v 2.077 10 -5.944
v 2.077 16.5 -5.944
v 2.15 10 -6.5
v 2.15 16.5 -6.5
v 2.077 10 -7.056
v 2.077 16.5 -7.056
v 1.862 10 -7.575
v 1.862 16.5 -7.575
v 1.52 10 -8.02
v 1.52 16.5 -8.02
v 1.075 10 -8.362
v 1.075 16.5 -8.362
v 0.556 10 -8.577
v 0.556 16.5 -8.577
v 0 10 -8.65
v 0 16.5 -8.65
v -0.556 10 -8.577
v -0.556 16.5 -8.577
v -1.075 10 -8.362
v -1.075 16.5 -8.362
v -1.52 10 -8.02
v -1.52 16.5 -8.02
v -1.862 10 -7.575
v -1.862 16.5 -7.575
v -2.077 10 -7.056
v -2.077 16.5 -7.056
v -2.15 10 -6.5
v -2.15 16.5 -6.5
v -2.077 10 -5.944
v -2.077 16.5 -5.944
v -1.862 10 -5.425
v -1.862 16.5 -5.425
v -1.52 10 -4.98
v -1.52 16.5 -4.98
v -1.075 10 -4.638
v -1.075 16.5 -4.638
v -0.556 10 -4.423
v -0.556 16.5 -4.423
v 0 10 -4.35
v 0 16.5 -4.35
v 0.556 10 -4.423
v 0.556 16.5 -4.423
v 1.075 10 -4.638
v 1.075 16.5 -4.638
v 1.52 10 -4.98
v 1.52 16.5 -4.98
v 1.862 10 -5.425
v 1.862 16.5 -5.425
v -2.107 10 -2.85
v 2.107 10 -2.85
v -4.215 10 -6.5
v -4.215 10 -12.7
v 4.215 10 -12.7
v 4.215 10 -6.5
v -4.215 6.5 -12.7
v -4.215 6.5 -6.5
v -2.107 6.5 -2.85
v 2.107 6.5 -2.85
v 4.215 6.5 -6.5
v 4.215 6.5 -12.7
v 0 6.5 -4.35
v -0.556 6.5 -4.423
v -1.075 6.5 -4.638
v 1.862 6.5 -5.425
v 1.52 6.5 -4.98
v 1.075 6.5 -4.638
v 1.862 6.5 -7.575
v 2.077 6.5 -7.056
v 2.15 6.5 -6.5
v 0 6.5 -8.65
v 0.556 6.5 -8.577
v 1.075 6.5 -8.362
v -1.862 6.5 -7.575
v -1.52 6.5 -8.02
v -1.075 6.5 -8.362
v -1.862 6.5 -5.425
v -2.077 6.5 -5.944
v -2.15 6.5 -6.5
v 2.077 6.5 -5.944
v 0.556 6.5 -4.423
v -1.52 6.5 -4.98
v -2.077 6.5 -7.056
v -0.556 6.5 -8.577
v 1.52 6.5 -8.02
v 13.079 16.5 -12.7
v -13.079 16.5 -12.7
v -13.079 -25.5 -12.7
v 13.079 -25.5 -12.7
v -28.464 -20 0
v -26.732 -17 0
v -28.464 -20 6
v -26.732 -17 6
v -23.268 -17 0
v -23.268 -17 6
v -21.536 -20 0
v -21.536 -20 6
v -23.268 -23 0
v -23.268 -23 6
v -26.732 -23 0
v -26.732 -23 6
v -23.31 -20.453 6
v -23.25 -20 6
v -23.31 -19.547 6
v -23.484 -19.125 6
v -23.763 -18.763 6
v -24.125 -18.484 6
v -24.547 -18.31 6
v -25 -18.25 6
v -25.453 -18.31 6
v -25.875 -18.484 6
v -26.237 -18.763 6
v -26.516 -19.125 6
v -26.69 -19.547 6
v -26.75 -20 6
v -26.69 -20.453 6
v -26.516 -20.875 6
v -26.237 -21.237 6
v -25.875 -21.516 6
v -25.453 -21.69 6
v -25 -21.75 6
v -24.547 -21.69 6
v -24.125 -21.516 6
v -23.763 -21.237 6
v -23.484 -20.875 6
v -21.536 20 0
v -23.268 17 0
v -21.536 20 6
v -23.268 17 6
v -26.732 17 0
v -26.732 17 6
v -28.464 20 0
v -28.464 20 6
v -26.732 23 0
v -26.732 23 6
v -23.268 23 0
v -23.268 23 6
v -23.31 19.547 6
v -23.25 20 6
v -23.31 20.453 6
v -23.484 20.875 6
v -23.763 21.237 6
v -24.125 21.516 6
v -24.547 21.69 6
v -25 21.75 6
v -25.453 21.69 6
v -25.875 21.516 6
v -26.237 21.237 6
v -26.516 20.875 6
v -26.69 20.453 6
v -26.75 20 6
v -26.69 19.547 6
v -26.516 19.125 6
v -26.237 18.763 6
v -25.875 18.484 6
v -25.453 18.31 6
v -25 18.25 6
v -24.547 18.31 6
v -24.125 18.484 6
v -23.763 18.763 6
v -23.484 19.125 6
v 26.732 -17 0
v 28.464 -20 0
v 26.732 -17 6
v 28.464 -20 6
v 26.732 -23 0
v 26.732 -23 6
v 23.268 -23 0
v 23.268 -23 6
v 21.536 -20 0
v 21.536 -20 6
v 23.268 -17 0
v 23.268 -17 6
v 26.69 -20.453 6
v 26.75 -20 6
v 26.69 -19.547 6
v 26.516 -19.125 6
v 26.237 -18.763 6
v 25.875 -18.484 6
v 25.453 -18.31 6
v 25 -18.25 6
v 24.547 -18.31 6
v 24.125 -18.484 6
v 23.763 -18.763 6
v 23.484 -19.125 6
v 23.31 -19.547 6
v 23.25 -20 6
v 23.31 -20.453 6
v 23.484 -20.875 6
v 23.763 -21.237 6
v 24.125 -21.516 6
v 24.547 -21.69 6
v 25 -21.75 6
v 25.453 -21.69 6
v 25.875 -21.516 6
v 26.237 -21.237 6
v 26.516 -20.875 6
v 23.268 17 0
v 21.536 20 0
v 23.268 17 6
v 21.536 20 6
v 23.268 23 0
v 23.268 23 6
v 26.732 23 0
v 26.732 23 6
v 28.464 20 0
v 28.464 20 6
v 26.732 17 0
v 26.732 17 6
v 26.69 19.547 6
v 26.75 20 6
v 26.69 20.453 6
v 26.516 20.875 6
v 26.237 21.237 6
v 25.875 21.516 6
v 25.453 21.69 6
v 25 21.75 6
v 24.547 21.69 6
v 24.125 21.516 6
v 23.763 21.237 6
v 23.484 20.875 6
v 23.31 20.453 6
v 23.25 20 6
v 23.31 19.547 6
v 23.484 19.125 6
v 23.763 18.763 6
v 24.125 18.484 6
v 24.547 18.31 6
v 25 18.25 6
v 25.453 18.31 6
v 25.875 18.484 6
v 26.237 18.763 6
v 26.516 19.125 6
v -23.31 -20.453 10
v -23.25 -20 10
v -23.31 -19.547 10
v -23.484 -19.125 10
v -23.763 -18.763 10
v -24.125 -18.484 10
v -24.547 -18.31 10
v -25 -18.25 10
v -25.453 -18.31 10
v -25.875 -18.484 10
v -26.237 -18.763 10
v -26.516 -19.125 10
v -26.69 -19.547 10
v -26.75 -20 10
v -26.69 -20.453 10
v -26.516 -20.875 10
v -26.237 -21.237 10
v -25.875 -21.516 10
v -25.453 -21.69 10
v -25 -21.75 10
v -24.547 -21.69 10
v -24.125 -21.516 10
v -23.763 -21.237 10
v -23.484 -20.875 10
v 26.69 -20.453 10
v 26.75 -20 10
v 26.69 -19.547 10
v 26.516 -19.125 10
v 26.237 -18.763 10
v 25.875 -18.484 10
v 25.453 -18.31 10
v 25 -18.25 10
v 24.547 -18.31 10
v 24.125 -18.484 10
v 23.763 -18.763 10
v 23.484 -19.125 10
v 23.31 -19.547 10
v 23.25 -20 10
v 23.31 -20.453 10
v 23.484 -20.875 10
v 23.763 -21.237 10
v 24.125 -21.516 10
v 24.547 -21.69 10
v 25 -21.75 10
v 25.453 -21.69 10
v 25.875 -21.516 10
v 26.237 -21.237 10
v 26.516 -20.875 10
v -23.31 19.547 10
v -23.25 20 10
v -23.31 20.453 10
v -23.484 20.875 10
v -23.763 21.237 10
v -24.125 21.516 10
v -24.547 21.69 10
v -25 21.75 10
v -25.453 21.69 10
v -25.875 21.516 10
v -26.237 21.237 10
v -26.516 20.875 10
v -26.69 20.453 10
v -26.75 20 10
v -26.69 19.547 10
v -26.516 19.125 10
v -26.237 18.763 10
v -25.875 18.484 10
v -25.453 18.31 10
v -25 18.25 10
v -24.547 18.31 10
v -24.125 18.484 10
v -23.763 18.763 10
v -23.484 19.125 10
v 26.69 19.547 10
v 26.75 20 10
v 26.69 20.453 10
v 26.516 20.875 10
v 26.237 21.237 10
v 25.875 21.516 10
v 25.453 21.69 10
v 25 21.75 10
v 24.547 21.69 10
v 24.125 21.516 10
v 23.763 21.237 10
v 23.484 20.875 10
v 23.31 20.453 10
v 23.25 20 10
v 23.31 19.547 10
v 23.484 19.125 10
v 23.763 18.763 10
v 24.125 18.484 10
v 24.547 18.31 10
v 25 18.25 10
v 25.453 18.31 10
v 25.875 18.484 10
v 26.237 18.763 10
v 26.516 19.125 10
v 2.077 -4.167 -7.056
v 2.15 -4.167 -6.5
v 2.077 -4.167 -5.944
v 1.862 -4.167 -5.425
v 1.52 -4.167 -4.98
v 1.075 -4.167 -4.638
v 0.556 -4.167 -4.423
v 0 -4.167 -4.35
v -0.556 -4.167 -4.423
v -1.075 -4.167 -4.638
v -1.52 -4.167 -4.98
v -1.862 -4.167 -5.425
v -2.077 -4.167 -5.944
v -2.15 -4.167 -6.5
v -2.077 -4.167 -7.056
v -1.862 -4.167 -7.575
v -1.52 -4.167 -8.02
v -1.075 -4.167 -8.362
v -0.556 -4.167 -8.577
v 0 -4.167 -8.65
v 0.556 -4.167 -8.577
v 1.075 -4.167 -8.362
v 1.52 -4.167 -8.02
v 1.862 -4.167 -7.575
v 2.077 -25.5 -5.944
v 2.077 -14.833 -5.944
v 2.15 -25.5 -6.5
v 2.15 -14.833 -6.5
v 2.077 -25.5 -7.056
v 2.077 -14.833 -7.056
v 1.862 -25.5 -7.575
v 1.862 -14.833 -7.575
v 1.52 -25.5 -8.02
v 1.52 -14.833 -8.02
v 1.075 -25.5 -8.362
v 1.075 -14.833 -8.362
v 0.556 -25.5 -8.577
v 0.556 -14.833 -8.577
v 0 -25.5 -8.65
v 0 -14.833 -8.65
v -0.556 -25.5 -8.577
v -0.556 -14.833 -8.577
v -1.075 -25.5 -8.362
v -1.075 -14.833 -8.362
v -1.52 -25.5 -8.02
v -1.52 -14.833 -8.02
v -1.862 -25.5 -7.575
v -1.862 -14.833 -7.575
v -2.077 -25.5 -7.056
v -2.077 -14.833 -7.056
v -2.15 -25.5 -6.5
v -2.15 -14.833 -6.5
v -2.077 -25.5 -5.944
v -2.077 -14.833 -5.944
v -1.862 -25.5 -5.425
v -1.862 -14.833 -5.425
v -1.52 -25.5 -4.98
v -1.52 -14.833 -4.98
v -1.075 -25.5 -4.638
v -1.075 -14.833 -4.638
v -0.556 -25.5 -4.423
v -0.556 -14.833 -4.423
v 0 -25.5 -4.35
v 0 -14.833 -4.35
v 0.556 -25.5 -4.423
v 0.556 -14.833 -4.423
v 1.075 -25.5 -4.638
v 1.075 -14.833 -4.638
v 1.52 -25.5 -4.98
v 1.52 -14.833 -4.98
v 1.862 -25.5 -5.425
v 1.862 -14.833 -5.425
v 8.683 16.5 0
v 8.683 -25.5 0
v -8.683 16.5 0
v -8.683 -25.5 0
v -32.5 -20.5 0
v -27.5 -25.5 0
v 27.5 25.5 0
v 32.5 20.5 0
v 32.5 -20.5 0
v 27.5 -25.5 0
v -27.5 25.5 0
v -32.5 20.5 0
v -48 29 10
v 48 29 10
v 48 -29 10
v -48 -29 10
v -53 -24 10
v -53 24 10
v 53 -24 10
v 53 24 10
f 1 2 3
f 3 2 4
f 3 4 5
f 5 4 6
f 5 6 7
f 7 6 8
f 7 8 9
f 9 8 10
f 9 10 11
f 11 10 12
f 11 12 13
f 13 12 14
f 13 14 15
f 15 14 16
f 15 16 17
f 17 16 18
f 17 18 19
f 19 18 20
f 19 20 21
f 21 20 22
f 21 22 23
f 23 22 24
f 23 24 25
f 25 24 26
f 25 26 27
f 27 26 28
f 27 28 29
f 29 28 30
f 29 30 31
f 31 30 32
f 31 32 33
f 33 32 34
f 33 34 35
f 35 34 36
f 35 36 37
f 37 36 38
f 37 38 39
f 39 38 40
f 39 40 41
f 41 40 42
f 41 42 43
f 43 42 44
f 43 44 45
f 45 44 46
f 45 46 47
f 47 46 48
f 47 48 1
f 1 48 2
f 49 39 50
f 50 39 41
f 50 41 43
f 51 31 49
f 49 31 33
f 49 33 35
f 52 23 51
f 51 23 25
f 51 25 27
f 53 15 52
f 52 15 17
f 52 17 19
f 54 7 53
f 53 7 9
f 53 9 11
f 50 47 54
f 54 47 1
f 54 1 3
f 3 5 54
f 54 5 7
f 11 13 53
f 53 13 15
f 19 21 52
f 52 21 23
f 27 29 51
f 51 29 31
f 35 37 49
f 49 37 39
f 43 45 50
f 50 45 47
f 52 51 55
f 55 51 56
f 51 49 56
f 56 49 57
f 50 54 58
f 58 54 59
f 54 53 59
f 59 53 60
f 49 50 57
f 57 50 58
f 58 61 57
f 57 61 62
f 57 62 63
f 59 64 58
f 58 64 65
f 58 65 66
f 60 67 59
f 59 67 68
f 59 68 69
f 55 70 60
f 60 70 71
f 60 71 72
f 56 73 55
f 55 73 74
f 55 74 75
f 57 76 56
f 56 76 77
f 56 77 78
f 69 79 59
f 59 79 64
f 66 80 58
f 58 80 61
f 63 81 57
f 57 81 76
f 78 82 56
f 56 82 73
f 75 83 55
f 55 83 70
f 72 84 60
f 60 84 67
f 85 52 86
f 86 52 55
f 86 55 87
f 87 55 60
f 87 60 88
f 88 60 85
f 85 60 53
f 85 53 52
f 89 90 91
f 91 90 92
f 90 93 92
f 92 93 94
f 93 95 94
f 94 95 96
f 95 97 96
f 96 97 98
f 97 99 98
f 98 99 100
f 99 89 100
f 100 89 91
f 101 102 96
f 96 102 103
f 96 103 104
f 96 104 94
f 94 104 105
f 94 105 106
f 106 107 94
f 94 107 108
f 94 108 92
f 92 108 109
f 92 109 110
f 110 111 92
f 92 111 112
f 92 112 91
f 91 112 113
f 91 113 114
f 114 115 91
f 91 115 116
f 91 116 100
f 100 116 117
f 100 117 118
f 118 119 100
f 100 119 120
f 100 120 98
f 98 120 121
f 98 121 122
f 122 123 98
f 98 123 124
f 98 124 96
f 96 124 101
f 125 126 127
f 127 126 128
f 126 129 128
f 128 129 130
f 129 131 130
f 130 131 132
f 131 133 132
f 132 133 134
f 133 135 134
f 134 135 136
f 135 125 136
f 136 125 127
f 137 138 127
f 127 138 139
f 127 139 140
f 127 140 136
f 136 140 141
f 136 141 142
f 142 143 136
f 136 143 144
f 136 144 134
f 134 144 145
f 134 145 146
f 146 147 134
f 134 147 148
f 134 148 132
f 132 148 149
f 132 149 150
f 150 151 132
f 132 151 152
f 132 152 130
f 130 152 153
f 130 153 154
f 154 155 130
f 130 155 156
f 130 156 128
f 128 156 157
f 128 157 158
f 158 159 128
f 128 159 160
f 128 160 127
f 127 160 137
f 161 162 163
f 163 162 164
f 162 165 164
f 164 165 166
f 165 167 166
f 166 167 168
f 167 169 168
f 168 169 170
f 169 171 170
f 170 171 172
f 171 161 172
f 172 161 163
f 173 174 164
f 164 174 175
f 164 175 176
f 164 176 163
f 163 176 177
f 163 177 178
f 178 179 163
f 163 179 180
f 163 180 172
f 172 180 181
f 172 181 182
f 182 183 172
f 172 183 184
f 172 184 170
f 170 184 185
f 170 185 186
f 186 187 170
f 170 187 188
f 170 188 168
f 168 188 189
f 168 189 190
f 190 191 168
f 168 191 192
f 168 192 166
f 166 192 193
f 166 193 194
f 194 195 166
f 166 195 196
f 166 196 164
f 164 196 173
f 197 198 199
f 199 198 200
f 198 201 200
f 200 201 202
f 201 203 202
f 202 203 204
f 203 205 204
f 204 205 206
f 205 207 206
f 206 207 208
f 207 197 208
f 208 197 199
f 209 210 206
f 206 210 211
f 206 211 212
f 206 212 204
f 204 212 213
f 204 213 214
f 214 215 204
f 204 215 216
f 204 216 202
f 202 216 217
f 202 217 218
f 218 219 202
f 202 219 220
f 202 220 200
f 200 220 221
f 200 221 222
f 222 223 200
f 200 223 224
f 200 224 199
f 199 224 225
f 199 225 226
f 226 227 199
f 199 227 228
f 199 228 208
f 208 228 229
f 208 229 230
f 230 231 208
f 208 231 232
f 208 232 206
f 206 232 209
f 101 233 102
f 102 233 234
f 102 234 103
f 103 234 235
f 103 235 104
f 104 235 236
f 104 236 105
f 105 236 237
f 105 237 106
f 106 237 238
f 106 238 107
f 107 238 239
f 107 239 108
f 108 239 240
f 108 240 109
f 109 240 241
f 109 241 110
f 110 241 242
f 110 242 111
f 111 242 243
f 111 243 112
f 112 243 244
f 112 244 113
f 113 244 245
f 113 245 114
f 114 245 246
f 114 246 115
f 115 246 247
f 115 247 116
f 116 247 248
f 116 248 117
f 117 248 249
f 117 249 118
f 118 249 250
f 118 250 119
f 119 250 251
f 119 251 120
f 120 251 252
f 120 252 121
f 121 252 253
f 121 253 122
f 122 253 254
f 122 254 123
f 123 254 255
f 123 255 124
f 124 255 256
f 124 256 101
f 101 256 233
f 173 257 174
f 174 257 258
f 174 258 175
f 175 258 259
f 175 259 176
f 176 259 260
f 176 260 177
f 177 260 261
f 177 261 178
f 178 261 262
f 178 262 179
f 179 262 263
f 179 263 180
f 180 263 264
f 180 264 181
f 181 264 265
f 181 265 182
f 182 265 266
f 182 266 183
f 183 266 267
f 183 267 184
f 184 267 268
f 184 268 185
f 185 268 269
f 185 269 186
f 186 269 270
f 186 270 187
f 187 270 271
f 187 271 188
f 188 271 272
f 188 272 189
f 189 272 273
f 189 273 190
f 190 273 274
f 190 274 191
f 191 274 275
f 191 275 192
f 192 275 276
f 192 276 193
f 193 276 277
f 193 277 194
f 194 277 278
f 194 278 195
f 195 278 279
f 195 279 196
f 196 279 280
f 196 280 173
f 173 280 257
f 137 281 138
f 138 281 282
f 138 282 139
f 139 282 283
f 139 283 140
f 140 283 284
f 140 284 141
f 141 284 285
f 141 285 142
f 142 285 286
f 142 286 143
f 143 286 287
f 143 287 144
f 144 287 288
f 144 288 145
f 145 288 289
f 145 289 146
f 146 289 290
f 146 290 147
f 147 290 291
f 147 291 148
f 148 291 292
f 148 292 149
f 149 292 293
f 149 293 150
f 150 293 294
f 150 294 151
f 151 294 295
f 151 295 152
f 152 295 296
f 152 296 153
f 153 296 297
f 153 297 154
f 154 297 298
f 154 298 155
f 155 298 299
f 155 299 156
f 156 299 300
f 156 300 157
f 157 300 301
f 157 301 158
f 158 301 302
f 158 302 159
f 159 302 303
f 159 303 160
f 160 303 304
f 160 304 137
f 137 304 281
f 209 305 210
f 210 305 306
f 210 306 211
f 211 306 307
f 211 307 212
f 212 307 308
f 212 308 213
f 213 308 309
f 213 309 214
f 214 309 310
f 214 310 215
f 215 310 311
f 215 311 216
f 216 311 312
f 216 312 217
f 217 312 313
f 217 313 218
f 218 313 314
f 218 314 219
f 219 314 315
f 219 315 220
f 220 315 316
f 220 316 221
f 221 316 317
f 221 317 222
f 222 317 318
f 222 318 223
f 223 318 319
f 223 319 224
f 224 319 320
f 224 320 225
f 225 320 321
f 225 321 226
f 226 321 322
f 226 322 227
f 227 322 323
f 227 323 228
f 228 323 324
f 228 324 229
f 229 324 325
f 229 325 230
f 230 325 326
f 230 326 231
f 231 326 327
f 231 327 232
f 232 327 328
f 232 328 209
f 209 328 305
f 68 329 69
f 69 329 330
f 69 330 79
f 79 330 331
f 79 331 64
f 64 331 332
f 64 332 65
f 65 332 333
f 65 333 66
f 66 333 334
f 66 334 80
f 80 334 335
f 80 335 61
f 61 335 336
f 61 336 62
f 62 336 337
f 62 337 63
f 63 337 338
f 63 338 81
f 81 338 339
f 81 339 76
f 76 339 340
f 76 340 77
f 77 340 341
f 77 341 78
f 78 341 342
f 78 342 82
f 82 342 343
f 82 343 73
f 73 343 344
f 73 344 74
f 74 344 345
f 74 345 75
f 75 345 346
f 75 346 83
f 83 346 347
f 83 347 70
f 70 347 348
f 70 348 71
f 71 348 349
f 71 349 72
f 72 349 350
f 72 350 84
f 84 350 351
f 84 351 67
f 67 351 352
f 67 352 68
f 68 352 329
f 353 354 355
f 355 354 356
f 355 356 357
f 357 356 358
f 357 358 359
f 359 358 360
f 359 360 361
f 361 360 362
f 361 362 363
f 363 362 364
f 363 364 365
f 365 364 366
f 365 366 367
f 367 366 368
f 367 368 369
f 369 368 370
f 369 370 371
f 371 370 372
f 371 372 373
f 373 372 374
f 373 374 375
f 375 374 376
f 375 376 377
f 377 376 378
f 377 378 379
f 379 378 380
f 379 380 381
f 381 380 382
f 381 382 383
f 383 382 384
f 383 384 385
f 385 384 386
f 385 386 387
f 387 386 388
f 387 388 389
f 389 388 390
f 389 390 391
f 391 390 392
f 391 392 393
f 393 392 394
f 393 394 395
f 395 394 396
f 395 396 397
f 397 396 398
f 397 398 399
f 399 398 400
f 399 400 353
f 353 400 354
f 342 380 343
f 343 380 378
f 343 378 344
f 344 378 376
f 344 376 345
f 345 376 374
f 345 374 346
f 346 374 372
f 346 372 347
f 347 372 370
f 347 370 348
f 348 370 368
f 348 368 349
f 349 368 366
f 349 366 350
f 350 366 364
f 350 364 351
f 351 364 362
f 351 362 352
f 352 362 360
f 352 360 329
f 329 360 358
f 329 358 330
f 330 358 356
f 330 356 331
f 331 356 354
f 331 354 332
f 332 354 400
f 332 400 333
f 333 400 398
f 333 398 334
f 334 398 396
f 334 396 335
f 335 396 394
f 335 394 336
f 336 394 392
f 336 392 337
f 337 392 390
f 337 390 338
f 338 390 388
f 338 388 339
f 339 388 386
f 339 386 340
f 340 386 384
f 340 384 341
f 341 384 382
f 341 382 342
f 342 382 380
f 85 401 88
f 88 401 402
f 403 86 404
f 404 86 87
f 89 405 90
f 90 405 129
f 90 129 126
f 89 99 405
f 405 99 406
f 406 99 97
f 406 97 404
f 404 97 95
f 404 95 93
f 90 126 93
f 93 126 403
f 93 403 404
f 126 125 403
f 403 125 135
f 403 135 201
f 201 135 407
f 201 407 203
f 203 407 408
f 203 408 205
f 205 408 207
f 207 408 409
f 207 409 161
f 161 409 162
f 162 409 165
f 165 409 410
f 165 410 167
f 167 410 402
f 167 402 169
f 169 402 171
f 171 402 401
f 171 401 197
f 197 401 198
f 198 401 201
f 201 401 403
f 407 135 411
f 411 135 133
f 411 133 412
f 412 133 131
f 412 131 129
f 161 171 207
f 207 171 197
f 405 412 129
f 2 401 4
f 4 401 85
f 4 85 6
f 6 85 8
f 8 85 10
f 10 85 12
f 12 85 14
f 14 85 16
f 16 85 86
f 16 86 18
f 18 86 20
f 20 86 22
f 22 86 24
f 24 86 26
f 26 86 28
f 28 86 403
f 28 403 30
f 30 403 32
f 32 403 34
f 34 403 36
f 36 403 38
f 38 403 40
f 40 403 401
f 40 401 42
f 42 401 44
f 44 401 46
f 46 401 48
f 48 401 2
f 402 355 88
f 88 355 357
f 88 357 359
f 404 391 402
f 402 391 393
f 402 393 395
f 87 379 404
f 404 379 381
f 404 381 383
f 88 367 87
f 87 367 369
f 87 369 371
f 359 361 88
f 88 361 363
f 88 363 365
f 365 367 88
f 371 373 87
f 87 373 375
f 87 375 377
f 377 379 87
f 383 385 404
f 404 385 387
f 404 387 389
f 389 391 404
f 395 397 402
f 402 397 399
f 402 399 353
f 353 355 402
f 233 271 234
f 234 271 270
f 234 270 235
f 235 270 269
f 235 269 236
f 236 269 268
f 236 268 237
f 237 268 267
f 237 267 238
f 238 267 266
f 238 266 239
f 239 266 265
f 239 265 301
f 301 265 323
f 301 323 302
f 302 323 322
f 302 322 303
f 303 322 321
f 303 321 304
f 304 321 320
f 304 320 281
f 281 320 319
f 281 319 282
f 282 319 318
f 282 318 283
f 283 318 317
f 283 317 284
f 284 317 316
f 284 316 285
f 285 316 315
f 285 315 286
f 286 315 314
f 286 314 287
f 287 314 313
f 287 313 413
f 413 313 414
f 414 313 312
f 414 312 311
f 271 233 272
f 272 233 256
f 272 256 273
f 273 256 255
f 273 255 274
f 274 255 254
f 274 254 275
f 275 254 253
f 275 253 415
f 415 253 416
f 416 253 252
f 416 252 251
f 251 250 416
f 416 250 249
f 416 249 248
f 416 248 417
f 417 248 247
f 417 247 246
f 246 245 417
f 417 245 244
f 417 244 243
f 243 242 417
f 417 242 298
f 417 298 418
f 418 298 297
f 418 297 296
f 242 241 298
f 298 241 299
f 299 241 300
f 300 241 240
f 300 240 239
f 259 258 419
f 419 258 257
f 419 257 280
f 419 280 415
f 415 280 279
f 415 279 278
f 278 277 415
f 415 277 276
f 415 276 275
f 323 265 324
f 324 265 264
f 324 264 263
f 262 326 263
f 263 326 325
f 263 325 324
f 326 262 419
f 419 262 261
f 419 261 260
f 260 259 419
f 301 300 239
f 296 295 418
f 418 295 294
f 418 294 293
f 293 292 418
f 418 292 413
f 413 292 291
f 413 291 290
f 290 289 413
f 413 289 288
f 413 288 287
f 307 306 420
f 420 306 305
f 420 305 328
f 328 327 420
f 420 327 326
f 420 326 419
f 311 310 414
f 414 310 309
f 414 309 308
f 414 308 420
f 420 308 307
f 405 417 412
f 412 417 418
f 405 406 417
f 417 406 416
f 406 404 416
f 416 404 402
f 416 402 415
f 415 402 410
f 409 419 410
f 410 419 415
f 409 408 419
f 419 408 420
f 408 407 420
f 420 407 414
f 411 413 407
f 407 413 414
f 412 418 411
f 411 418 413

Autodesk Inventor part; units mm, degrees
ref_plane "YZ Plane" through (0, 0, 0) normal (1, 0, 0) x (0, 1, 0)
ref_plane "XZ Plane" through (0, 0, 0) normal (0, 1, 0) x (-1, 0, 0)
ref_plane "Arbeitsebene1" through (0, 0, 10) normal (0, 0, 1) x (1, 0, 0)
sketch "Skizze1" plane through (0, 0, 0) normal (0, 0, 1) x (1, 0, 0)
  line L0 (-27.5, 25.5) -> (27.5, 25.5)
  line L1 (32.5, 20.5) -> (32.5, -20.5)
  line L2 (27.5, -25.5) -> (-27.5, -25.5)
  line L3 (-32.5, -20.5) -> (-32.5, 20.5)
  line L4 (-32.5, 0) -> (32.5, 0) construction
  line L5 (0, 25.5) -> (0, -25.5) construction
  line L6 (-32.5, 20.5) -> (-27.5, 25.5)
  line L7 (32.5, 20.5) -> (27.5, 25.5)
  line L8 (-32.5, -20.5) -> (-27.5, -25.5)
  line L9 (32.5, -20.5) -> (27.5, -25.5)
  point P0 (0, 0)
  point P1 (0, 0)
  dimension "d0" = 65
  dimension "d3" = 5
  dimension "d4" = 51
  dimension "d28" = 5
sketch "Skizze2" plane through (0, 0, 10) normal (0, 0, 1) x (1, 0, 0)
  line L0 (-48, 29) -> (48, 29)
  line L1 (53, 24) -> (53, -24)
  line L2 (48, -29) -> (-48, -29)
  line L3 (-53, -24) -> (-53, 24)
  line L4 (-53, 0) -> (53, 0) construction
  line L5 (0, 29) -> (0, -29) construction
  line L6 (-53, 24) -> (-48, 29)
  line L7 (53, 24) -> (48, 29)
  line L8 (-53, -24) -> (-48, -29)
  line L9 (53, -24) -> (48, -29)
  point P0 (0, 0)
  point P1 (0, 0)
  dimension "d6" = 58
  dimension "d8" = 45
  dimension "d9" = 5
  dimension "d10" = 106
loft "Erhebung1" add profiles "Skizze1", "Skizze2"
sketch "Skizze3" plane through (27.5, 25.5, 0) normal (0, 0, -1) x (-1, 0, 0)
  line L0 (14, -51) -> (41, -51)
  line L1 (41, -51) -> (41, -9)
  line L2 (41, -9) -> (14, -9)
  line L3 (14, -9) -> (14, -51)
  line L4 (55, -51) -> (0, -51) projected
  point P0 (27.5, -25.5)
  point P1 (27.5, -51)
  dimension "d15" = 27
  dimension "d16" = 42
extrude "Extrusion1" add sketch "Skizze3" along normal blind 13
sketch "Skizze4" plane through (-13.5, -25.5, 0) normal (0, -1, 0) x (1, 0, 0)
  line L0 (13.5, 0) -> (13.5, -13) construction
  line L1 (27, -13) -> (0, -13) construction
  circle A0 centre (13.5, -6.5) radius 2.15
  line L2 (27, 0) -> (27, -13) projected
  line L3 (27, -13) -> (22.5, 0)
  line L4 (0, 0) -> (27, 0) projected
  line L5 (0, -13) -> (4.5, 0)
  line L6 (0, 0) -> (27, 0) projected
  line L7 (0, 0) -> (0, -13) projected
  line L8 (27, -13) -> (0, -13) projected
  line L9 (27, 0) -> (27, -13) projected
  line L10 (26.6825, -13) -> (22.1825, 0)
  line L11 (4.8175, 0) -> (0.3175, -13)
  line L12 (0.1038, -12.7) -> (26.8962, -12.7)
  point P0 (26.5787, -12.7)
  point P1 (0.4213, -12.7)
  point P2 (22.1825, 0)
  dimension "d19" = 18
  dimension "d20" = 4.3
  dimension "d29" = 27
  dimension "d30" = 13
  dimension "d31" = 0.3
  dimension "d32" = 0.3
  dimension "d33" = 0.3
extrude "Extrusion2" cut sketch "Skizze4" against normal through all contours A0 | L2 L3 L4 | L8 L10 L12 L3 | L3 L12 L10 L4 | L8 L11 L12 L10 | L8 L5 L12 L11 | L11 L12 L5 L4 | L7 L4 L5
sketch "Skizze5" plane through (27.5, 25.5, 0) normal (0, 0, -1) x (-1, 0, 0)
  line L0 (2.5, -5.5) -> (52.5, -5.5)
  line L1 (52.5, -5.5) -> (52.5, -45.5)
  line L2 (52.5, -45.5) -> (2.5, -45.5)
  line L3 (2.5, -45.5) -> (2.5, -5.5)
  line L4 (2.5, -5.5) -> (52.5, -45.5) construction
  line L5 (52.5, -5.5) -> (2.5, -45.5) construction
  circle A0 centre (2.5, -5.5) radius 1.75
  circle A1 centre (52.5, -5.5) radius 1.75
  circle A2 centre (2.5, -45.5) radius 1.75
  circle A3 centre (52.5, -45.5) radius 1.75
  point P0 (27.5, -25.5)
  point P1 (27.5, -25.5)
  point P2 (27.5, -25.5)
  dimension "d23" = 50
  dimension "d24" = 40
  dimension "d25" = 3.5
extrude "Extrusion3" cut sketch "Skizze5" against normal through all contours L3 A0 L0 | L0 A0 L3 | A1 L1 L0 | L0 L1 A1 | A2 L2 L3 | L3 L2 A2 | A3 L2 L1 | L1 L2 A3
sketch "Skizze6" plane through (27.5, 25.5, 0) normal (0, 0, -1) x (-1, 0, 0)
  circle A0 centre (2.5, -5.5) radius 1.75 projected
  line L0 (-0.9641, -5.5) -> (0.7679, -2.5)
  line L1 (0.7679, -2.5) -> (4.2321, -2.5)
  line L2 (4.2321, -2.5) -> (5.9641, -5.5)
  line L3 (5.9641, -5.5) -> (4.2321, -8.5)
  line L4 (4.2321, -8.5) -> (0.7679, -8.5)
  line L5 (0.7679, -8.5) -> (-0.9641, -5.5)
  line L6 (0, 0) -> (55, 0) projected
  line L7 (27.5, 0) -> (27.5, -51) construction
  line L8 (36.1825, -51) -> (18.8175, -51) construction
  line L9 (-5, -46) -> (-5, -5) construction
  line L10 (-5, -25.5) -> (60, -25.5) construction
  line L11 (60, -5) -> (60, -46) construction
  circle A1 centre (52.5, -5.5) radius 1.75
  line L12 (55.9641, -5.5) -> (54.2321, -2.5)
  line L13 (54.2321, -2.5) -> (50.7679, -2.5)
  line L14 (50.7679, -2.5) -> (49.0359, -5.5)
  line L15 (49.0359, -5.5) -> (50.7679, -8.5)
  line L16 (50.7679, -8.5) -> (54.2321, -8.5)
  line L17 (54.2321, -8.5) -> (55.9641, -5.5)
  line L18 (55, 0) -> (0, 0)
  circle A2 centre (2.5, -45.5) radius 1.75
  line L19 (-0.9641, -45.5) -> (0.7679, -48.5)
  line L20 (0.7679, -48.5) -> (4.2321, -48.5)
  line L21 (4.2321, -48.5) -> (5.9641, -45.5)
  line L22 (5.9641, -45.5) -> (4.2321, -42.5)
  line L23 (4.2321, -42.5) -> (0.7679, -42.5)
  line L24 (0.7679, -42.5) -> (-0.9641, -45.5)
  line L25 (54.2321, -48.5) -> (50.7679, -48.5)
  line L26 (55.9641, -45.5) -> (54.2321, -48.5)
  circle A3 centre (52.5, -45.5) radius 1.75
  line L27 (50.7679, -48.5) -> (49.0359, -45.5)
  line L28 (54.2321, -42.5) -> (55.9641, -45.5)
  line L29 (50.7679, -42.5) -> (54.2321, -42.5)
  line L30 (49.0359, -45.5) -> (50.7679, -42.5)
  point P0 (27.5, -25.5)
  dimension "d34" = 6
extrude "Extrusion4" cut sketch "Skizze6" against normal blind 6 contours A0 | L0 L1 L2 L3 L4 L5 | A1 | L17 L16 L15 L14 L13 L12 | A2 | L24 L23 L22 L21 L20 L19 | L25 L27 L30 L29 L28 L26 | A3
sketch "Skizze7" plane through (-8.6825, 16.5, 0) normal (0, 1, 0) x (1, 0, 0)
  circle A0 centre (8.6825, 6.5) radius 2.15 projected
  line L0 (6.5752, 10.15) -> (10.7899, 10.15)
  line L1 (10.7899, 10.15) -> (12.8972, 6.5)
  line L2 (12.8972, 6.5) -> (10.7899, 2.85)
  line L3 (10.7899, 2.85) -> (6.5752, 2.85)
  line L4 (6.5752, 2.85) -> (4.4679, 6.5)
  line L5 (4.4679, 6.5) -> (6.5752, 10.15)
  line L6 (21.7612, 12.7) -> (-4.3962, 12.7) projected
  line L7 (4.4679, 6.5) -> (4.4679, 12.7)
  line L8 (12.8972, 6.5) -> (12.8972, 12.7)
  line L9 (-4.3962, 12.7) -> (21.7612, 12.7) projected
  line L10 (4.4679, 12.7) -> (12.8972, 12.7)
  point P0 (8.6825, 0)
  dimension "d37" = 7.3
extrude "Extrusion5" cut sketch "Skizze7" against normal blind 10
extrude "Extrusion6" add sketch "Skizze7" against normal blind 6.5
equation "\"d32\" = d31"
equation "\"d33\" = d32"
properties part number "5,1_3D-Druck"
